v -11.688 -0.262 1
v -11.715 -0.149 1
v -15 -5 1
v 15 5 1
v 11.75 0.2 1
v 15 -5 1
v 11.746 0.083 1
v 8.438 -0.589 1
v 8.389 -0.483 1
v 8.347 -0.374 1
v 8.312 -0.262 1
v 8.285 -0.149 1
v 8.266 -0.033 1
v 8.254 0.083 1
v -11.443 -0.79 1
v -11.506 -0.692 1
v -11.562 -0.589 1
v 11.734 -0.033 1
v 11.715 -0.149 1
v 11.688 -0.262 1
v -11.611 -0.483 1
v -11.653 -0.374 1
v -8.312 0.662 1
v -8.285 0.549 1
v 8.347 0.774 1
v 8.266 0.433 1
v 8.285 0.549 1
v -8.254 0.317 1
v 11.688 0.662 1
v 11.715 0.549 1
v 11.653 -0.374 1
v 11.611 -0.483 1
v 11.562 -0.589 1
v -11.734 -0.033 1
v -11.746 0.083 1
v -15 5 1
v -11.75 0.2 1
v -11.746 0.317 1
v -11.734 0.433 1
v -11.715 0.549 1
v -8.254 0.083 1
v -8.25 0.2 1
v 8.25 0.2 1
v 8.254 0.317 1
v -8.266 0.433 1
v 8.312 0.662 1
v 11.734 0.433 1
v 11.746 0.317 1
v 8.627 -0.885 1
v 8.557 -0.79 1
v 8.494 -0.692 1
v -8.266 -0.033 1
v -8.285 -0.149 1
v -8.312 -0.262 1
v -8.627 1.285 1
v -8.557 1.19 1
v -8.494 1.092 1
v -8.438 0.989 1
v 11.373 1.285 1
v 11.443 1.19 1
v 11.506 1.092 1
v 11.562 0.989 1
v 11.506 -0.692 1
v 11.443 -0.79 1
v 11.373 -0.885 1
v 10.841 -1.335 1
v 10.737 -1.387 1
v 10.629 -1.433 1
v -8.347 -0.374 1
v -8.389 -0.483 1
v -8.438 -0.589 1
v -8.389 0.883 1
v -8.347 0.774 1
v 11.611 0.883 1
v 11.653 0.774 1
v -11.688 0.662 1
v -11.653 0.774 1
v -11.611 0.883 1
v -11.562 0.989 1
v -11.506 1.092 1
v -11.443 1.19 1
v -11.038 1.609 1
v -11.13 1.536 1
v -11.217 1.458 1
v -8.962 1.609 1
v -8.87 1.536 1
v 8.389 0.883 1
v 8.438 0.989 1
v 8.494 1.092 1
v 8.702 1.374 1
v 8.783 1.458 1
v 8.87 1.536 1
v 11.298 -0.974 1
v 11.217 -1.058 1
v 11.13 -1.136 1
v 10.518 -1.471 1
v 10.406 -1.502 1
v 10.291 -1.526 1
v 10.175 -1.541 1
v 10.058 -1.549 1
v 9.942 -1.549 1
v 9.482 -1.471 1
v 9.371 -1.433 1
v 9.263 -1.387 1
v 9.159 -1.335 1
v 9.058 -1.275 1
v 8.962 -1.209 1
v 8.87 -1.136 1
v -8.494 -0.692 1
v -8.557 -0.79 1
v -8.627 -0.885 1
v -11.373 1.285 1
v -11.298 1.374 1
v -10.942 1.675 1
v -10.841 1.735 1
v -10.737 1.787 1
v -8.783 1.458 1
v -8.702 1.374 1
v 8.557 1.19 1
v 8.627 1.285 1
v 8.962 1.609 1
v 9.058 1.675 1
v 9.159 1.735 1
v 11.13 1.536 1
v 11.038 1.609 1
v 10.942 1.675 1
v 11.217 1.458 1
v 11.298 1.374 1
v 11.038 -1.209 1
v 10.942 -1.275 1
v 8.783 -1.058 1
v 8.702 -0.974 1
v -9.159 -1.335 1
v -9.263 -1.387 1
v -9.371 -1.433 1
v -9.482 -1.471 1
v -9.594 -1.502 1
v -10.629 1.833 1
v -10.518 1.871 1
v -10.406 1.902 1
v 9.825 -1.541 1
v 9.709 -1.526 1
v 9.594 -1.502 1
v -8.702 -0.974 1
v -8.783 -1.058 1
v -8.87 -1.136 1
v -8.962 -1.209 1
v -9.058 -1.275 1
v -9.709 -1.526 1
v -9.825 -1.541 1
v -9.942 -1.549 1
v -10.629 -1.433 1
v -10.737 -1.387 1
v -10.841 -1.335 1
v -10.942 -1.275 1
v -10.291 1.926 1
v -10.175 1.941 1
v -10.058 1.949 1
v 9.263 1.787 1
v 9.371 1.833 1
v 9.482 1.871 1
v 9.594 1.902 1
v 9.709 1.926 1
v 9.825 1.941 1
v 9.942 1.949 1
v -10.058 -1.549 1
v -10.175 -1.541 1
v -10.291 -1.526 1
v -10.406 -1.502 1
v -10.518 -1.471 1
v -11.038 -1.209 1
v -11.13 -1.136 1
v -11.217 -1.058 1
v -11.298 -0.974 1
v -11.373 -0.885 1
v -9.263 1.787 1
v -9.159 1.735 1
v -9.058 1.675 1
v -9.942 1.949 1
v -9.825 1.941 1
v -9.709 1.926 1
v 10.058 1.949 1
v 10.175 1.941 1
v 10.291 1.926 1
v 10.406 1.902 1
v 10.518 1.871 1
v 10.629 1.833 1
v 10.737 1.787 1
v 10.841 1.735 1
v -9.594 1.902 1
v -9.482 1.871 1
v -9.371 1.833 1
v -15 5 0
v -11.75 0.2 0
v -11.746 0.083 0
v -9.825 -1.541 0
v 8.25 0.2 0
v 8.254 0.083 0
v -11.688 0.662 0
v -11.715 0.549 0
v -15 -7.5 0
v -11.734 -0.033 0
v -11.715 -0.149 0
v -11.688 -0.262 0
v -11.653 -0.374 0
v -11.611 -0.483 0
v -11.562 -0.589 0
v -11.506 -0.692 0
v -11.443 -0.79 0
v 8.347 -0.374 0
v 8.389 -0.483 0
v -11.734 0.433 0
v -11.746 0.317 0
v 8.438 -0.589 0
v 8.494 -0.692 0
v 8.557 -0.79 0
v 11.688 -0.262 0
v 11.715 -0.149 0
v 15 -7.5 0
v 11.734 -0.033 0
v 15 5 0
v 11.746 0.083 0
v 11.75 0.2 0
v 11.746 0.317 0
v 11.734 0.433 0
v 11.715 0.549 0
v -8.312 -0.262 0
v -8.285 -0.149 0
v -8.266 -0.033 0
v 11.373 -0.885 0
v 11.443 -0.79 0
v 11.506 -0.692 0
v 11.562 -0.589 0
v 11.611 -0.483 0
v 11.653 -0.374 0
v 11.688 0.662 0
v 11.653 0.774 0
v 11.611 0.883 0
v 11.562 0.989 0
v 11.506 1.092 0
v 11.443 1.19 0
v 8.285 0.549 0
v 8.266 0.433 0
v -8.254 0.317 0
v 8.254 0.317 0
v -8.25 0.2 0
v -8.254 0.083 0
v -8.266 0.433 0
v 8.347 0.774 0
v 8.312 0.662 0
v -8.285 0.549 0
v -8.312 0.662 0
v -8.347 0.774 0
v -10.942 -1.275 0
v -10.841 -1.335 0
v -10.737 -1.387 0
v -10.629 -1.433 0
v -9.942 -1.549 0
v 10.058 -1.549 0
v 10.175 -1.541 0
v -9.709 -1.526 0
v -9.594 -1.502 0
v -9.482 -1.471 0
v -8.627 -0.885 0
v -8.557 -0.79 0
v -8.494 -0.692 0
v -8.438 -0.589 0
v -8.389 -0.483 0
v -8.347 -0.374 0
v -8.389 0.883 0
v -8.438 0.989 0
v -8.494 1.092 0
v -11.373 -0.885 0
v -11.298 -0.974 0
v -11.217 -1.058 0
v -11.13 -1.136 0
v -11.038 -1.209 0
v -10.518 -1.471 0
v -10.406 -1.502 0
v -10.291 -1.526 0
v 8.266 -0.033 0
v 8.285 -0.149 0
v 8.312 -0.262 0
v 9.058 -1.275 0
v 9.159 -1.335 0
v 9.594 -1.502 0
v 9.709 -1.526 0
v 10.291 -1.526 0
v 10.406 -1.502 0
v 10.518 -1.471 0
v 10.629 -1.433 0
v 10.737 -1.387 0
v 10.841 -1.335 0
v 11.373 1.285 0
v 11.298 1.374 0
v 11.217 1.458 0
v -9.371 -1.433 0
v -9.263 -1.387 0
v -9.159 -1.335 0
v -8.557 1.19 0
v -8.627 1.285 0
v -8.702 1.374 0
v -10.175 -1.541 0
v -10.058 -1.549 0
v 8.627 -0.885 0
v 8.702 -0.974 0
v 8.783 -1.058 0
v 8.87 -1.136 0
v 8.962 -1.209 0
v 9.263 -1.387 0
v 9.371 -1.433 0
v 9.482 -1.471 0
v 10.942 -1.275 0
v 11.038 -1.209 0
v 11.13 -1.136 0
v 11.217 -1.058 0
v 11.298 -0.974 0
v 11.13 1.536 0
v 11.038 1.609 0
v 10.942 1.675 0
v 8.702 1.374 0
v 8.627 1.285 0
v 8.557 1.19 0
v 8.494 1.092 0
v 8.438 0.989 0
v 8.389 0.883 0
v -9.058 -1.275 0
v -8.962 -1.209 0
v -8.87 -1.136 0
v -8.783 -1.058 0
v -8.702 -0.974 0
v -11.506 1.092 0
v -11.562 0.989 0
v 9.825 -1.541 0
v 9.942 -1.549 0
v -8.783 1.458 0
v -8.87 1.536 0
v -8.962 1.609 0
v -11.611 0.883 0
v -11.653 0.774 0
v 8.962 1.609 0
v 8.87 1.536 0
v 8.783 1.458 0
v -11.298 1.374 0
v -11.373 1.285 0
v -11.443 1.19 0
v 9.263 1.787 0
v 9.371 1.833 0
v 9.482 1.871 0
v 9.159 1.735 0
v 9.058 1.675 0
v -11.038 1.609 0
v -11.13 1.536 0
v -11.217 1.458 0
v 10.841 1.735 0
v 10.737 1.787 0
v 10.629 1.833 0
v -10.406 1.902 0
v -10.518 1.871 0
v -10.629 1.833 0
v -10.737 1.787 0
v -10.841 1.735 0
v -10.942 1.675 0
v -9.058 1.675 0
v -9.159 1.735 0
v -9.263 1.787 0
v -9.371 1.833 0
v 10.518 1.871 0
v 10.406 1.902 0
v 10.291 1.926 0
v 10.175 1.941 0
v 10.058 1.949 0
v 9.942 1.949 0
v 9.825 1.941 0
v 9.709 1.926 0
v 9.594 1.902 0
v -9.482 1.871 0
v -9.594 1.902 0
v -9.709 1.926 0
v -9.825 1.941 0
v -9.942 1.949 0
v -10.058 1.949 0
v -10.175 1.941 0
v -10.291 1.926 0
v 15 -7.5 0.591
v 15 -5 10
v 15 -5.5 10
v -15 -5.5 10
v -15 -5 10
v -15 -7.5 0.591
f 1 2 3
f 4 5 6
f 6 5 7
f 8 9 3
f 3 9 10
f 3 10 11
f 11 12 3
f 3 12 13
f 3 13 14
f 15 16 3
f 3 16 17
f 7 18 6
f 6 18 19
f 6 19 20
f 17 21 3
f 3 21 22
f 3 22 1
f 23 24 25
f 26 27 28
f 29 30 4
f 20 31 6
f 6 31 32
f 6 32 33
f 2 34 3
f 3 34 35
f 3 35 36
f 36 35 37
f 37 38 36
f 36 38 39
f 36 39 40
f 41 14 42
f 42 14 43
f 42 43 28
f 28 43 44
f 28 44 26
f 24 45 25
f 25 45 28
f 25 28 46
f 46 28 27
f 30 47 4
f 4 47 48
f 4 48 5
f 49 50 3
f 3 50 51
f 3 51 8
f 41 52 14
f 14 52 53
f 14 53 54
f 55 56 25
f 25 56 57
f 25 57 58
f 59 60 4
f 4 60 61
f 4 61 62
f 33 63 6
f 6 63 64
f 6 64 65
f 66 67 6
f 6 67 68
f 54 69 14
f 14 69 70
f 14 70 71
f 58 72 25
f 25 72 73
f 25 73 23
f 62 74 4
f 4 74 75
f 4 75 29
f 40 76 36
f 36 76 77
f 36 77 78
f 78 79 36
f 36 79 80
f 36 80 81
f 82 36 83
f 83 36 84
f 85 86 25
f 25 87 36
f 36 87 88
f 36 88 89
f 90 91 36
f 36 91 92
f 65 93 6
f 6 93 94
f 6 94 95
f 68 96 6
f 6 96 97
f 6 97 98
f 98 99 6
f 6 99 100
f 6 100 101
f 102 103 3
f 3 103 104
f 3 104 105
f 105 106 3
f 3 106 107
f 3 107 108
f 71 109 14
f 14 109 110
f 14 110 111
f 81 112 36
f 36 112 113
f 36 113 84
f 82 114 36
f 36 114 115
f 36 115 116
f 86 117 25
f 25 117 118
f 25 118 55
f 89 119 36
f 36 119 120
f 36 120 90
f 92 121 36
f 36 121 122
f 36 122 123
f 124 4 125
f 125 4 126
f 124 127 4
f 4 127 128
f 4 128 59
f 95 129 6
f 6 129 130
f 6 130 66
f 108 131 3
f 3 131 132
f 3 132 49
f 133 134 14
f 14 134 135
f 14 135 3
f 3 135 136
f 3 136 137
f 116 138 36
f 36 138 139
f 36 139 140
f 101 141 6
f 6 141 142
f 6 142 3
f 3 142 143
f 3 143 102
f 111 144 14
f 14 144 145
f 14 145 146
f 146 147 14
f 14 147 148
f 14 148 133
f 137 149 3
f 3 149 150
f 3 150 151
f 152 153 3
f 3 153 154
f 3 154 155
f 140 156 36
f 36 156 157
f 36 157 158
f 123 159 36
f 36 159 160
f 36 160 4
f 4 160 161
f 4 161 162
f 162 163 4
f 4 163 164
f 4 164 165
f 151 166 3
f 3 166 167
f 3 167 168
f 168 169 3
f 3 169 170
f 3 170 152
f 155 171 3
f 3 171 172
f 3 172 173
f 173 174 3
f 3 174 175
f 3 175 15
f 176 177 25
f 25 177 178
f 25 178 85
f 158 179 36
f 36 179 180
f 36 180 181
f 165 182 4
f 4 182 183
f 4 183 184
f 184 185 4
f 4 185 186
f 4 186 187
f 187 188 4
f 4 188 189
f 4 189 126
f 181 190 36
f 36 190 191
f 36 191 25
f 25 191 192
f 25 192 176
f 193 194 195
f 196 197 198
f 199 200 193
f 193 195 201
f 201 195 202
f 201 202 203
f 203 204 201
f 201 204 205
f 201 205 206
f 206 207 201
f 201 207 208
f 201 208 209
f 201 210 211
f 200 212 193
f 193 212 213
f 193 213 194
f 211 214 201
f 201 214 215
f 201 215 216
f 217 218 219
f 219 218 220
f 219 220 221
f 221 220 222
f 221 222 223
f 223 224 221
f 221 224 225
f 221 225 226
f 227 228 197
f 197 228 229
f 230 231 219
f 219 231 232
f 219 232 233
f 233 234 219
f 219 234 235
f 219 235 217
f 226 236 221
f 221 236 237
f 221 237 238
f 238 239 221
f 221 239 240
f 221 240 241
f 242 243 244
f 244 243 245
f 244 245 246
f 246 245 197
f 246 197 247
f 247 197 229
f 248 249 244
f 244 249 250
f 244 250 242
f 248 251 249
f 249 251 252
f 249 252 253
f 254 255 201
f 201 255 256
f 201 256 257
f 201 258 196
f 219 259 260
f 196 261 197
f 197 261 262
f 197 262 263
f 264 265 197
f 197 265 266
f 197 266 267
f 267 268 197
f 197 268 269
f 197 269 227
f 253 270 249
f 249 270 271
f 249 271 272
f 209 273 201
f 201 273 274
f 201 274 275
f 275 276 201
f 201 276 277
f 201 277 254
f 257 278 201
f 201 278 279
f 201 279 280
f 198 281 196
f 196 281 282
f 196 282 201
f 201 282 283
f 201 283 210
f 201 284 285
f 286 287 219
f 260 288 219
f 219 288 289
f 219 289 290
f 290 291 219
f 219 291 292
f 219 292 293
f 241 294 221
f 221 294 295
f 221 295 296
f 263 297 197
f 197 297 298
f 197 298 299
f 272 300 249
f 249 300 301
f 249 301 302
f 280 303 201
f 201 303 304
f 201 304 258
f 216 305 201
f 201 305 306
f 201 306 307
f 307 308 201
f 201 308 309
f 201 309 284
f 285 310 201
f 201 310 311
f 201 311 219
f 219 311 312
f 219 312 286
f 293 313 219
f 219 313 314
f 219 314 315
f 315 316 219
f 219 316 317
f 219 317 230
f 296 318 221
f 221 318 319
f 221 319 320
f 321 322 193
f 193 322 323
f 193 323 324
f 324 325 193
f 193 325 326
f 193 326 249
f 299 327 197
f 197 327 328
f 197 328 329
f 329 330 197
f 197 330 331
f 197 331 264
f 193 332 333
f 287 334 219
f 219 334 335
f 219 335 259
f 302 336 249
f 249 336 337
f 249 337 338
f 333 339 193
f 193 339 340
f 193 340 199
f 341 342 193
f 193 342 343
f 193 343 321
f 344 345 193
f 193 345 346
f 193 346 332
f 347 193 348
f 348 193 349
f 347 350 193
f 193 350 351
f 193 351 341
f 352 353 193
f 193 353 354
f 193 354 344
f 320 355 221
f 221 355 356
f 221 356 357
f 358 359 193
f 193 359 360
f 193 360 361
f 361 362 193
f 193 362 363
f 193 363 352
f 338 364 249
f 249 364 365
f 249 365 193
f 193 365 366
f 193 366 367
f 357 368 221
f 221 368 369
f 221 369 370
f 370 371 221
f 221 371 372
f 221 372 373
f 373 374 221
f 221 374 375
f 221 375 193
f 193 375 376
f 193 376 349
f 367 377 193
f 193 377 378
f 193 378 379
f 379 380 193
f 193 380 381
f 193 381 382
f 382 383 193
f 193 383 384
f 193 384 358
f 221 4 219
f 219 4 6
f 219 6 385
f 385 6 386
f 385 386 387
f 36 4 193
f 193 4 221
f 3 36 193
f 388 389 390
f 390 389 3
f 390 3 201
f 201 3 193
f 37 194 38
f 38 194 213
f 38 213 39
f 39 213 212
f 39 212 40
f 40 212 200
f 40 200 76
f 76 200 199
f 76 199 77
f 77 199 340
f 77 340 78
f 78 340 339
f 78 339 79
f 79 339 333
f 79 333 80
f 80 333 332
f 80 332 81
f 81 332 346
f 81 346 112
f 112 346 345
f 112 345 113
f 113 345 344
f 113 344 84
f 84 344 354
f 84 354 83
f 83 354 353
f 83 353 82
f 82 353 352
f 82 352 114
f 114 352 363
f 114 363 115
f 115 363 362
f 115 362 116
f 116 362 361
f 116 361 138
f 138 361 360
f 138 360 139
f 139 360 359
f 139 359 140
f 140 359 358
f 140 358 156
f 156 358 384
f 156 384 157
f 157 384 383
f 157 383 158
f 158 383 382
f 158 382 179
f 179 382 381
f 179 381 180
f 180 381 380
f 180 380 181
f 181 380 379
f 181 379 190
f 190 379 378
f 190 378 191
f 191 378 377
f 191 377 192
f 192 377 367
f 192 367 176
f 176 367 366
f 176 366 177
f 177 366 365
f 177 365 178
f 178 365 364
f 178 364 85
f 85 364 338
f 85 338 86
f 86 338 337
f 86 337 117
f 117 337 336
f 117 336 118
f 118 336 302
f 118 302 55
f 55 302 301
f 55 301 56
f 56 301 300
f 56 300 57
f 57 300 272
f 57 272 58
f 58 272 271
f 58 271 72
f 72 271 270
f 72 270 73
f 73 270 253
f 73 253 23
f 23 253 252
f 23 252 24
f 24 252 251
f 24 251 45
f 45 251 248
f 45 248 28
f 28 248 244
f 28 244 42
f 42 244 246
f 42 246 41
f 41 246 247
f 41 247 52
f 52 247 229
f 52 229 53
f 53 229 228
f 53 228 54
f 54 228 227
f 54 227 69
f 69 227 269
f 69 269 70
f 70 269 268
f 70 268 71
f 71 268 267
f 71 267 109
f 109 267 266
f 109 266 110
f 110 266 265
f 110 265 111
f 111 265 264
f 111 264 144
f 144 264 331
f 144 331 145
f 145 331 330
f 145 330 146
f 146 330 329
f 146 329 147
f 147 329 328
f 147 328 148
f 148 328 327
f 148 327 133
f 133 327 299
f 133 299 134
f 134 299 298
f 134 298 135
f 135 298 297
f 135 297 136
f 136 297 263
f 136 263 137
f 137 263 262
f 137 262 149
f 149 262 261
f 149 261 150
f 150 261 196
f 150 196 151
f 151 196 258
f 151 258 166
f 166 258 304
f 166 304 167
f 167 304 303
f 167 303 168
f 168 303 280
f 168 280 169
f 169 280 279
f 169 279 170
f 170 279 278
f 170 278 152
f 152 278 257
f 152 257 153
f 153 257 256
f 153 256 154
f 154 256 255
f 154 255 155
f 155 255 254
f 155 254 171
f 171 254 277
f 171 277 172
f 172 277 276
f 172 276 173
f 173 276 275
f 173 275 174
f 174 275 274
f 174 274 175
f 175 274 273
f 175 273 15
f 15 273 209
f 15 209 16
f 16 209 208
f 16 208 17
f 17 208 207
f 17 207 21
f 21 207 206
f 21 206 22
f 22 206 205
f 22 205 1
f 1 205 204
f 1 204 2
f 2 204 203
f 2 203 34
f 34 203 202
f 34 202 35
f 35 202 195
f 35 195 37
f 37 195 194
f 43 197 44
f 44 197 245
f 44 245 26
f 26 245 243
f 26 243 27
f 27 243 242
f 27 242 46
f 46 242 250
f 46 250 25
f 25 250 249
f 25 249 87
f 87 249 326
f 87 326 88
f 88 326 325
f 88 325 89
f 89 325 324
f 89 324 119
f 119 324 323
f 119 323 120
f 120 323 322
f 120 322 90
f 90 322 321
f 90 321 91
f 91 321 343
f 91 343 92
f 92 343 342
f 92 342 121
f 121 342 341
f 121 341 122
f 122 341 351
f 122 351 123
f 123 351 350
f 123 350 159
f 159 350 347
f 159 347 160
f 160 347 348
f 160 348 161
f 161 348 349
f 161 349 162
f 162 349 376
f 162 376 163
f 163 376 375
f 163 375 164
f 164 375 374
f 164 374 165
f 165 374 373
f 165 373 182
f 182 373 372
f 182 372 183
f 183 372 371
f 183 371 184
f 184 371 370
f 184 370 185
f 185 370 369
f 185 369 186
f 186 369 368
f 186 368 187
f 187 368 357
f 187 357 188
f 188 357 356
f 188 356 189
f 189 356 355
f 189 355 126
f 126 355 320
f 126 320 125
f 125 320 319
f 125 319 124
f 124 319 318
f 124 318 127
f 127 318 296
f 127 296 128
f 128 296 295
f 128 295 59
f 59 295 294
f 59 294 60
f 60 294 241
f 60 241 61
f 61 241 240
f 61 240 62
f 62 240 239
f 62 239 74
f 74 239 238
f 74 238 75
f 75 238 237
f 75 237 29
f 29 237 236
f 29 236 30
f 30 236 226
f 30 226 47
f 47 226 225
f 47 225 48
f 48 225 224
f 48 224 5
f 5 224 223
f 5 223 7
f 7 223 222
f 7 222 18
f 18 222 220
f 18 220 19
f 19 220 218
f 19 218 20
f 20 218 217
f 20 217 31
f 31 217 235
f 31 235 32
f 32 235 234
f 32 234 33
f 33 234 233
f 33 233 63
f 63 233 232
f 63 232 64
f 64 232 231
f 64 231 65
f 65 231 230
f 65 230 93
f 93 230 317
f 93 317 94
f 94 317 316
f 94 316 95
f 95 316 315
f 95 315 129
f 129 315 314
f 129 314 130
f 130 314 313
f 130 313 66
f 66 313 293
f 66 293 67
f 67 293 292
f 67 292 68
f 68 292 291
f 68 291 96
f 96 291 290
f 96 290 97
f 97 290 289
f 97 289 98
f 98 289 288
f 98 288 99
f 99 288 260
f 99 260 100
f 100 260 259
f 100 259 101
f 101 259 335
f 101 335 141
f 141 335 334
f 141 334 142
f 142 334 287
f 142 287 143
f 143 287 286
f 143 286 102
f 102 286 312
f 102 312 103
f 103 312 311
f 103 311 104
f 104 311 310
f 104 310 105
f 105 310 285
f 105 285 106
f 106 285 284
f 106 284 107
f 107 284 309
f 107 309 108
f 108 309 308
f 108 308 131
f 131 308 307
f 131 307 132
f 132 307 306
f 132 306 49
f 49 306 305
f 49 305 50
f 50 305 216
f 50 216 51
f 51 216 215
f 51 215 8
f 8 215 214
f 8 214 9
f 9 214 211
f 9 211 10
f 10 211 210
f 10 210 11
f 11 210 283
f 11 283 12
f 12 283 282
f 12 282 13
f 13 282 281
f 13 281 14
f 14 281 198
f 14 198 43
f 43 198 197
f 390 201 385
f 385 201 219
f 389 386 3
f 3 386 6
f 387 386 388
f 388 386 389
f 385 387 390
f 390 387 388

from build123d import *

# Parameters (mm, degrees)
SKETCH1_W           = 30
SKETCH1_H           = 10
SKETCH1_R           = 1.75
BOSS_EXTRUDE1_DEPTH = 1
SKETCH2_W           = 30
SKETCH2_H           = 2.5
BOSS_EXTRUDE2_DEPTH = 10
CHAMFER1_SIZE       = 2
CHAMFER1_SIZE2      = 9.409260219


with BuildPart() as part:
    # Sketch1 → Boss-Extrude1 (new body)
    with BuildSketch(Plane.XY):
        Rectangle(SKETCH1_W, SKETCH1_H)
        with Locations((-10, 0.2)):
            Circle(SKETCH1_R, mode=Mode.SUBTRACT)
        with Locations((10, 0.2)):
            Circle(SKETCH1_R, mode=Mode.SUBTRACT)
    extrude(amount=BOSS_EXTRUDE1_DEPTH)

    # Sketch2 → Boss-Extrude2 (add)
    with BuildSketch(Plane.XY):
        with Locations((0, -6.25)):
            Rectangle(SKETCH2_W, SKETCH2_H)
    extrude(amount=BOSS_EXTRUDE2_DEPTH)

    # Chamfer1
    chamfer1_edges = [part.edges().sort_by_distance(p)[0] for p in [
        (0, -7.5, 10),
    ]]
    chamfer1_side = [part.faces().sort_by_distance(p)[0] for p in [
        (0, -6.25, 10),
    ]]
    chamfer(chamfer1_edges, length=CHAMFER1_SIZE, length2=CHAMFER1_SIZE2, reference=chamfer1_side[0])


solid = part.part
